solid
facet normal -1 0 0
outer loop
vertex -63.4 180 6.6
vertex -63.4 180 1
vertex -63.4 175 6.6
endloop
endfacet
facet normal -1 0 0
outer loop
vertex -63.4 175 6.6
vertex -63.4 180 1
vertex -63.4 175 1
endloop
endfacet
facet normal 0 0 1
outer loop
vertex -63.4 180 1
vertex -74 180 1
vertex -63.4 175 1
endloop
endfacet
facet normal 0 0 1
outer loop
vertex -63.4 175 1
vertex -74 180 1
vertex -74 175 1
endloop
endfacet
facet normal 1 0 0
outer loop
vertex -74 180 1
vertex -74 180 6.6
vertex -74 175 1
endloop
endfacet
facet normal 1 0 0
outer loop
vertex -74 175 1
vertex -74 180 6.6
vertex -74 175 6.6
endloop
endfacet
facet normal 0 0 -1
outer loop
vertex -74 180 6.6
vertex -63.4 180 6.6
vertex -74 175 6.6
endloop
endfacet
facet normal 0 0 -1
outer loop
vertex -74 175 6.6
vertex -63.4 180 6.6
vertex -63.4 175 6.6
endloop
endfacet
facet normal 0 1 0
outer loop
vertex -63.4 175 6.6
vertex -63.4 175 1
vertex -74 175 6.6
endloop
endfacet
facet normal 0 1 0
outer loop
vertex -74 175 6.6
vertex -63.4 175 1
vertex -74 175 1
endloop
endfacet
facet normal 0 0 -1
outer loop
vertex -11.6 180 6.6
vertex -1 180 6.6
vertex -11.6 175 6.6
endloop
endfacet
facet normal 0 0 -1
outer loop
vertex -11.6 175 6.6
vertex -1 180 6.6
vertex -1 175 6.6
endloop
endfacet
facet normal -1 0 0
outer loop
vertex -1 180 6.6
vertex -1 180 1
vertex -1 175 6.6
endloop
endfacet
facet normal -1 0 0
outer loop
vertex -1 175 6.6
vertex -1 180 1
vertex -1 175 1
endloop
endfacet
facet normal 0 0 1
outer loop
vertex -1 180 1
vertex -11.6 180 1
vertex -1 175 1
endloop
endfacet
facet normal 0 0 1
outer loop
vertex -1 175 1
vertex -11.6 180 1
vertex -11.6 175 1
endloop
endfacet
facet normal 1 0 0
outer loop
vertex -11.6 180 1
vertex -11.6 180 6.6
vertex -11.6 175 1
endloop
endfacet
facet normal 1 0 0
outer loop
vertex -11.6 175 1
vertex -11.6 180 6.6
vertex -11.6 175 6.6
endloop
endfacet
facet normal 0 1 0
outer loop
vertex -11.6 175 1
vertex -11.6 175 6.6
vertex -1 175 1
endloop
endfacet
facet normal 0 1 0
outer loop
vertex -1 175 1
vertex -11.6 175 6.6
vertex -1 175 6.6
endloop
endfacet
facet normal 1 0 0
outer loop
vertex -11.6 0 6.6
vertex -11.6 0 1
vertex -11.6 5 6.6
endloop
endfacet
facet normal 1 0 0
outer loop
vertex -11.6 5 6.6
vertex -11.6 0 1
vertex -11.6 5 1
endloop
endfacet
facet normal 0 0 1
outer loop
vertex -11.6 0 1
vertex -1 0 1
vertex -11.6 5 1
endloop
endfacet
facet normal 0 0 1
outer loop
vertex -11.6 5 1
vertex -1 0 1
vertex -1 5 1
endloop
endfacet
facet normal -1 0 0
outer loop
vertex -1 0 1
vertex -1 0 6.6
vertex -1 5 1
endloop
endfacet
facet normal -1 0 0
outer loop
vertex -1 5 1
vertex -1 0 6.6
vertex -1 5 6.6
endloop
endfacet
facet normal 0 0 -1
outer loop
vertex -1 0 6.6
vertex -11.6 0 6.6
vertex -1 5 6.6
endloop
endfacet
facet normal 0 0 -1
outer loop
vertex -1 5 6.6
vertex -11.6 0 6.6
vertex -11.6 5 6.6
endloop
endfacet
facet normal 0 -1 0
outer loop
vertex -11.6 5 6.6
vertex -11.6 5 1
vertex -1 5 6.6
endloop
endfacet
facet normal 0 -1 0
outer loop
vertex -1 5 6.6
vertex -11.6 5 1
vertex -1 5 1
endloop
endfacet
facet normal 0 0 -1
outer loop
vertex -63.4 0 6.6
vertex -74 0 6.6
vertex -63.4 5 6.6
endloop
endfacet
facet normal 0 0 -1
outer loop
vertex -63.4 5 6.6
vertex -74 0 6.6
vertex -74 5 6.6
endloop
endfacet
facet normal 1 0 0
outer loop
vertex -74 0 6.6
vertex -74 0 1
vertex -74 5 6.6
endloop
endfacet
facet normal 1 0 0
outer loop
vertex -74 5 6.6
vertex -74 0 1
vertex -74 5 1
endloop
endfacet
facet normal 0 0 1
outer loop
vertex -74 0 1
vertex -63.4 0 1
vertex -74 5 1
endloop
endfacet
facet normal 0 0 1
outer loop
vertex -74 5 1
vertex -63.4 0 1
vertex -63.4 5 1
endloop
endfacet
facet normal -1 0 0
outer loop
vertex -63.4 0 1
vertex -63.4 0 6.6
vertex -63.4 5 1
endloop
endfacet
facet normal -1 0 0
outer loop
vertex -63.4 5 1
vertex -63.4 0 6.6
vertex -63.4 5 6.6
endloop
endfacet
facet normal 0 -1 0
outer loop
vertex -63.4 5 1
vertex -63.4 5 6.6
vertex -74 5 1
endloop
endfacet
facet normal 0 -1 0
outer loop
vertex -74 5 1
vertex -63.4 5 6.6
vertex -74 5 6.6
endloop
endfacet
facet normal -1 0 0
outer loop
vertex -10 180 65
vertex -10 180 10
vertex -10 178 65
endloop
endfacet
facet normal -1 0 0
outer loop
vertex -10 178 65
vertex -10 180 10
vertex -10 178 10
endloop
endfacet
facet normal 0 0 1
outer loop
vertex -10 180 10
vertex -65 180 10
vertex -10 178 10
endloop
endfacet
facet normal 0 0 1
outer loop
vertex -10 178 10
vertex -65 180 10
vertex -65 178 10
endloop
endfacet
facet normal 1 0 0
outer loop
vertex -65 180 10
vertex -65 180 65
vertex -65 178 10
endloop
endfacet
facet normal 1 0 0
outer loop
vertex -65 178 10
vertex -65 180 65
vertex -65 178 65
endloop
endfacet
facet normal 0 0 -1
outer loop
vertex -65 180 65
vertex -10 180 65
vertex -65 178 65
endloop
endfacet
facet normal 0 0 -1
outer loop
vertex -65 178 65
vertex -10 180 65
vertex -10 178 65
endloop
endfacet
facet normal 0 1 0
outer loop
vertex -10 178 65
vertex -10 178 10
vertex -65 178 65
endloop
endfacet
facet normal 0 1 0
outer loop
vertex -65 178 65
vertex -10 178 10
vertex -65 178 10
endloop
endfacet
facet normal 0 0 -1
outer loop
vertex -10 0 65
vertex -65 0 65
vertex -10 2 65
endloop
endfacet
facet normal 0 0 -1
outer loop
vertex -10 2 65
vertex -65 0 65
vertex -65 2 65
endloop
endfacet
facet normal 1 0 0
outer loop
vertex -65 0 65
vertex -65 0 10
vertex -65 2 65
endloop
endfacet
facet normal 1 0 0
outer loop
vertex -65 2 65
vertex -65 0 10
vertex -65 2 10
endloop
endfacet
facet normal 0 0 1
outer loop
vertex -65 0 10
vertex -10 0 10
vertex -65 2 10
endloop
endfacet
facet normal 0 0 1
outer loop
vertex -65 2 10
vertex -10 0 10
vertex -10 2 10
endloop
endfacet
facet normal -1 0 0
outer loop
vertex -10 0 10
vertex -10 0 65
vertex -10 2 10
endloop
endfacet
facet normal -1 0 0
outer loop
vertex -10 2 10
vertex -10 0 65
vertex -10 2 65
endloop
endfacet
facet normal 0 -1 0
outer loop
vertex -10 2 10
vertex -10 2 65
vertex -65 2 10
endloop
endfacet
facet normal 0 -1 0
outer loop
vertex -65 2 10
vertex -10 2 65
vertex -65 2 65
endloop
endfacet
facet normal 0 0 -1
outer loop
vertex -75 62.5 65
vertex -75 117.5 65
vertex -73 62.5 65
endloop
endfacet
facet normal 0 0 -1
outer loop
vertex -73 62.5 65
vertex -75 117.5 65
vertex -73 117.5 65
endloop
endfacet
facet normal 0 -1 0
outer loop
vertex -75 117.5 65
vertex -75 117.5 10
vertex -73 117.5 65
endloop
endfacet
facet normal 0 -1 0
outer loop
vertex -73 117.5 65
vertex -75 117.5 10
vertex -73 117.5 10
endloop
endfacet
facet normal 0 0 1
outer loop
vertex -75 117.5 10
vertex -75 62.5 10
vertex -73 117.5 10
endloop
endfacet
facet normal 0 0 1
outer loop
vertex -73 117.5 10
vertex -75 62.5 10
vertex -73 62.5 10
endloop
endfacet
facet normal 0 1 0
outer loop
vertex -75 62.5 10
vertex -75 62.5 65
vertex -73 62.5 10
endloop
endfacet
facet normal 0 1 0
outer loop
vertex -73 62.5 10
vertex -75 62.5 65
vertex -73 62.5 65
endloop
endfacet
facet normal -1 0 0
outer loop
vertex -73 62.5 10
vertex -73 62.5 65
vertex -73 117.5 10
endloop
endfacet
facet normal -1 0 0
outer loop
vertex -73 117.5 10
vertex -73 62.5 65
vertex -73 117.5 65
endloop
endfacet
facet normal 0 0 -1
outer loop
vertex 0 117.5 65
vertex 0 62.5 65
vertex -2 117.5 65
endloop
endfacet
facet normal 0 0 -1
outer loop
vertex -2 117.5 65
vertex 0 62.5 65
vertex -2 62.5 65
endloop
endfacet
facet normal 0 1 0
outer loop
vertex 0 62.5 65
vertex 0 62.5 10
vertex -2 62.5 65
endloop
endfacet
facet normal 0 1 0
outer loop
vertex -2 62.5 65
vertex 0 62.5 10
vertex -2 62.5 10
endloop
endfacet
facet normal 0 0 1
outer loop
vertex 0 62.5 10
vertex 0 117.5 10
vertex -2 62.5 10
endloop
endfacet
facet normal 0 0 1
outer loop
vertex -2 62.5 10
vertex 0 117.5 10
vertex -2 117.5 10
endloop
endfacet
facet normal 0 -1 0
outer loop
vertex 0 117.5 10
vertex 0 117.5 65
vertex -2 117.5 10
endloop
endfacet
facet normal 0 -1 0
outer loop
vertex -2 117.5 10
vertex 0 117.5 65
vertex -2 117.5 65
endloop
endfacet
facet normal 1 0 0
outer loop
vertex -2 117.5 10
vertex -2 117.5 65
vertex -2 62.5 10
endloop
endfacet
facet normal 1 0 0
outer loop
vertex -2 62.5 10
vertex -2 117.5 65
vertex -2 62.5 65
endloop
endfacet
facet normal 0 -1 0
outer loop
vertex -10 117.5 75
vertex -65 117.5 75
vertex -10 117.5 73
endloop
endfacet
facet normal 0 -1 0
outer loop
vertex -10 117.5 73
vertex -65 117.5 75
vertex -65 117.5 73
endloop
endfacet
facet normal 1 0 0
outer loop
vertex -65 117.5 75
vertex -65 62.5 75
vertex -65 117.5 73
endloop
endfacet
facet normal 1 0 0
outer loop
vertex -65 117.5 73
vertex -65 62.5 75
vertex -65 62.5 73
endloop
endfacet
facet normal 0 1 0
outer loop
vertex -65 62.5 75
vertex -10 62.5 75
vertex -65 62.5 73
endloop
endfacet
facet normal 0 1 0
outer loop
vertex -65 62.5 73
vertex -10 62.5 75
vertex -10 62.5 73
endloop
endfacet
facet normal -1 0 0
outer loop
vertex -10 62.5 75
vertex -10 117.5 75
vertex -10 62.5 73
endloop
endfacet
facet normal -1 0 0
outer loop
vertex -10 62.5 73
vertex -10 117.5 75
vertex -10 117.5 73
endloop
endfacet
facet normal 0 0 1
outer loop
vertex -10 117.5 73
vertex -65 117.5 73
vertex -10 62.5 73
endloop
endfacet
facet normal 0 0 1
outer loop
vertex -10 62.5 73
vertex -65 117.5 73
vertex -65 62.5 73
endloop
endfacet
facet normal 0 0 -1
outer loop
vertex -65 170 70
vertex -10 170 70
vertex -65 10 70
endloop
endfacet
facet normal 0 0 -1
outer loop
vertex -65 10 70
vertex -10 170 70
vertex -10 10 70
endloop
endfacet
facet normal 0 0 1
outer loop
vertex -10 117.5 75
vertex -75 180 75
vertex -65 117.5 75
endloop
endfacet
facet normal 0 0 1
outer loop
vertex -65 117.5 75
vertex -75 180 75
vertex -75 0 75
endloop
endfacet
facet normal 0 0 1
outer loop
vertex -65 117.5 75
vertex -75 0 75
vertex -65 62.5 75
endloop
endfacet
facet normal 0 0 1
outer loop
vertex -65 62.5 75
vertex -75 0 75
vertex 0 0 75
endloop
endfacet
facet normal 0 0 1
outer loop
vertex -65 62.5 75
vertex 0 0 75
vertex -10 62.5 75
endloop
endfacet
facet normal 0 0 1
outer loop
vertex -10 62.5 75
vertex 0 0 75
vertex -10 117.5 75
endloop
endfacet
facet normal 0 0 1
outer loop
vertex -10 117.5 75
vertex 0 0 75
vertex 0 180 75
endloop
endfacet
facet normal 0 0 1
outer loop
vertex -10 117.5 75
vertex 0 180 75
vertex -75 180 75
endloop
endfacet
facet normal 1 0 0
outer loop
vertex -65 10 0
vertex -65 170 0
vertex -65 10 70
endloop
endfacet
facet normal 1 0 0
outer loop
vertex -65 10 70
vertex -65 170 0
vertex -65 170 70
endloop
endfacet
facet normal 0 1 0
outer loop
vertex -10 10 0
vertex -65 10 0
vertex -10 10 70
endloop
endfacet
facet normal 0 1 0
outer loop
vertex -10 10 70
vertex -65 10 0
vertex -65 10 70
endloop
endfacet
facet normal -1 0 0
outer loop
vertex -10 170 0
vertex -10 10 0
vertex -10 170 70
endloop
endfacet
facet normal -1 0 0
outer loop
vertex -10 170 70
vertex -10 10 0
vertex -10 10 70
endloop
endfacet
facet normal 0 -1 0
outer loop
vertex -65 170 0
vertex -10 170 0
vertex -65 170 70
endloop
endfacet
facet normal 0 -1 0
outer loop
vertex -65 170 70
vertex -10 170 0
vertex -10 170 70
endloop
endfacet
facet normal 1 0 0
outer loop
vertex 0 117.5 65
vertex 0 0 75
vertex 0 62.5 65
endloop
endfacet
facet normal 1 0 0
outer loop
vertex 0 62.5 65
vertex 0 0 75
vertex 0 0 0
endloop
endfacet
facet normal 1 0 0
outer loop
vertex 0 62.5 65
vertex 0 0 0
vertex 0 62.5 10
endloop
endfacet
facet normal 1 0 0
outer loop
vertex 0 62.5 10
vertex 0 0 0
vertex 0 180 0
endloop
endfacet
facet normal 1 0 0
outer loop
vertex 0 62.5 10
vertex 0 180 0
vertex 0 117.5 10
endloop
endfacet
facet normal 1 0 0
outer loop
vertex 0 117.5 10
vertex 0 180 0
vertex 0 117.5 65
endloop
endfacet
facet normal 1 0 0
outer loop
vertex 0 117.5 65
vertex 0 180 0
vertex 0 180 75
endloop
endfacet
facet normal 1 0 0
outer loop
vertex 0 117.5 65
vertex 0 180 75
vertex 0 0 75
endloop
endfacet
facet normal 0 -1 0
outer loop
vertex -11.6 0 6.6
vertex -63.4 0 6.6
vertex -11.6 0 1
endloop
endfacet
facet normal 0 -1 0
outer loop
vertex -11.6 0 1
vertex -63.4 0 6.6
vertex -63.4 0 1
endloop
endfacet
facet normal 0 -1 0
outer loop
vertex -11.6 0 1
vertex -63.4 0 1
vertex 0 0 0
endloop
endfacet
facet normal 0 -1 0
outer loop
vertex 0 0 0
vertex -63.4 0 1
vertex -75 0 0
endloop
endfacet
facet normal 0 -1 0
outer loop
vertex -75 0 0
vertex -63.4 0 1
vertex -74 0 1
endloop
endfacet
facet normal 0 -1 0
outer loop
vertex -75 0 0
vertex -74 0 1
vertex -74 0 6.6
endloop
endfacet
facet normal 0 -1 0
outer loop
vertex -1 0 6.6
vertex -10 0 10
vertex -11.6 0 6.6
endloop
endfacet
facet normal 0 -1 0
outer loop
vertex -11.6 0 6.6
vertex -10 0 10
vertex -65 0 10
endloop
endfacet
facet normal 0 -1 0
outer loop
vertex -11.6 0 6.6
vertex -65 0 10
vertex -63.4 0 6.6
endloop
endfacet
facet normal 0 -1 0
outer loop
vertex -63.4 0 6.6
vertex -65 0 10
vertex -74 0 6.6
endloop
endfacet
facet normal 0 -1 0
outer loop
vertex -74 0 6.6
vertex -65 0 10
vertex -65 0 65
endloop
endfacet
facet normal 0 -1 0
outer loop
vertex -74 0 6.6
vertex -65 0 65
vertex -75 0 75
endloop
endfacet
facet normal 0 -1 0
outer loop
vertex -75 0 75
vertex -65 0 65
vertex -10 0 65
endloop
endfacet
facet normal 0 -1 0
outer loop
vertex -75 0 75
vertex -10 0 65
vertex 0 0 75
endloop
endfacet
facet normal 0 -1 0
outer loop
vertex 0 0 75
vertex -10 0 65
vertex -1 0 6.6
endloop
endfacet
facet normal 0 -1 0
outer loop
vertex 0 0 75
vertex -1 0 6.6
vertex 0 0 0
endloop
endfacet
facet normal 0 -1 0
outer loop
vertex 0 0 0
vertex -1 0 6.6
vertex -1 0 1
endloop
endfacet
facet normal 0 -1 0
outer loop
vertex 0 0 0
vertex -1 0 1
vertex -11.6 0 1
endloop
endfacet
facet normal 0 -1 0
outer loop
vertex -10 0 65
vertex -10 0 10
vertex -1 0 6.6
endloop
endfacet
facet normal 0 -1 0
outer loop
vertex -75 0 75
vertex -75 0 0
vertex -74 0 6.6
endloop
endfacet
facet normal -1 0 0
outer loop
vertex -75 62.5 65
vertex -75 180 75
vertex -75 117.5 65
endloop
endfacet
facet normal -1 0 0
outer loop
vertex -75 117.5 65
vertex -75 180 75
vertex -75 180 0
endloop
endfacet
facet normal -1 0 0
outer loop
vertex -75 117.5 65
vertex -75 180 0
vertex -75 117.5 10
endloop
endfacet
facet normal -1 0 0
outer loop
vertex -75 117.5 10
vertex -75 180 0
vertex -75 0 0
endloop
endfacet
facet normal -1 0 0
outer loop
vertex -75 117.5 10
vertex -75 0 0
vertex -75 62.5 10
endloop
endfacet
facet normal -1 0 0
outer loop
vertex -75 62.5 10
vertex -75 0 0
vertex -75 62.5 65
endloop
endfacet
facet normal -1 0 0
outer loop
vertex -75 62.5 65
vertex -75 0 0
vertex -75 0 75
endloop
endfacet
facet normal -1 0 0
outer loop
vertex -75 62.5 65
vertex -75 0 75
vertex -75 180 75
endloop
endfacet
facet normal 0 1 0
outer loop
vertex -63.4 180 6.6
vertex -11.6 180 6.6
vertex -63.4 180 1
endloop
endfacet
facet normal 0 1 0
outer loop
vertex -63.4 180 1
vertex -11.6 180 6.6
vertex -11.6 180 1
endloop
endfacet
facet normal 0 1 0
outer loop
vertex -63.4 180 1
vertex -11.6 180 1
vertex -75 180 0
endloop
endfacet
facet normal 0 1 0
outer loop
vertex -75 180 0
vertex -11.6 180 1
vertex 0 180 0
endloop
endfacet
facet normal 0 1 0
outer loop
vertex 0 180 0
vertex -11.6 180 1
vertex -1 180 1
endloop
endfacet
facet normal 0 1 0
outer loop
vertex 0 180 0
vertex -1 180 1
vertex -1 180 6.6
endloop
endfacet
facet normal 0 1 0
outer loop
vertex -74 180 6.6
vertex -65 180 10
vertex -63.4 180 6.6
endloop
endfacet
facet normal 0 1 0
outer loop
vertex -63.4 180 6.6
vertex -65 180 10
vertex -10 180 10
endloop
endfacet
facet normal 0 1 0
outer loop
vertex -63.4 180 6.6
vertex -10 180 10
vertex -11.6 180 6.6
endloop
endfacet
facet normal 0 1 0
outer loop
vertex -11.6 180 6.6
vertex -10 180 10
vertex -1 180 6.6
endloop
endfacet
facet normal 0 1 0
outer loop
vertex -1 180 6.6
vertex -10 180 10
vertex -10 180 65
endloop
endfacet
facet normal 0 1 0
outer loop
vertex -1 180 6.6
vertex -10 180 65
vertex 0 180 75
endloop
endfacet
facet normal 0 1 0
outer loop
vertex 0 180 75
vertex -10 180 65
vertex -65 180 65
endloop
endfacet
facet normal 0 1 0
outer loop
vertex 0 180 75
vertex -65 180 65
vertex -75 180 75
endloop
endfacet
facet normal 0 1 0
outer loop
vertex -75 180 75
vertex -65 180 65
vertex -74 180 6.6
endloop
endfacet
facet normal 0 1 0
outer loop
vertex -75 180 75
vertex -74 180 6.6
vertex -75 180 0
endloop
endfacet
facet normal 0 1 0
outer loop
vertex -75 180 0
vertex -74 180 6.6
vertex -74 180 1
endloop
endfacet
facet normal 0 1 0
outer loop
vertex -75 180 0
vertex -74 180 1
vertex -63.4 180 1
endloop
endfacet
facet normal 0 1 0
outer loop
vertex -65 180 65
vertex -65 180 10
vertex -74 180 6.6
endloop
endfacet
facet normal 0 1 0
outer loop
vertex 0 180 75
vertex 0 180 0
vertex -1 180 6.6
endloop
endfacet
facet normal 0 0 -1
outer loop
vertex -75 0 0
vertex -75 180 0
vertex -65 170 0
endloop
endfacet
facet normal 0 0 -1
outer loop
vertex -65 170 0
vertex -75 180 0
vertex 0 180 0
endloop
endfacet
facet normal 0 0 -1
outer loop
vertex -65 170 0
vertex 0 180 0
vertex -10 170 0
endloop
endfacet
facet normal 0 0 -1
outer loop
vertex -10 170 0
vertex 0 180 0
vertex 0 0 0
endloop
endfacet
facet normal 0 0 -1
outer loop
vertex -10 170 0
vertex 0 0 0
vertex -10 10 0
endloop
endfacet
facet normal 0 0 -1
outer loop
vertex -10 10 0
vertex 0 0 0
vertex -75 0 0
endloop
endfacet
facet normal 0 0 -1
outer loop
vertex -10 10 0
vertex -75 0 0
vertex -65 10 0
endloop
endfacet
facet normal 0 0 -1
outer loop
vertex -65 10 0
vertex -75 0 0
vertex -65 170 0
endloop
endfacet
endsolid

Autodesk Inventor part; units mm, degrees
ref_plane "YZ Plane" through (0, 0, 0) normal (1, 0, 0) x (0, 1, 0)
ref_plane "XZ Plane" through (0, 0, 0) normal (0, 1, 0) x (-1, 0, 0)
ref_plane "XY Plane" through (0, 0, 0) normal (0, 0, 1) x (1, 0, 0)
sketch "Sketch1" plane through (0, 0, 0) normal (0, 0, 1) x (1, 0, 0)
  line L0 (0, 0) -> (-75, 0)
  line L1 (-75, 0) -> (-75, 180)
  line L2 (-75, 180) -> (0, 180)
  line L3 (0, 180) -> (0, 0)
  line L4 (-65, 170) -> (-10, 170)
  line L5 (-10, 10) -> (-65, 10)
  line L6 (-65, 10) -> (-65, 85)
  line L7 (-65, 95) -> (-65, 170)
  line L8 (-10, 170) -> (-10, 95)
  line L9 (-10, 85) -> (-10, 10)
  line L10 (-65, 85) -> (-65, 95)
  line L11 (-10, 95) -> (-10, 85)
  point P0 (-65, 90)
  point P1 (-10, 90)
  dimension "d35" = 75
  dimension "d36" = 180
  dimension "d37" = 55
  dimension "d38" = 160
extrude "Extrusion7" add sketch "Sketch1" along normal blind 70
sketch "Sketch4" plane through (0, 0, 70) normal (0, 0, 1) x (1, 0, 0)
  line L0 (-75, 0) -> (0, 0) projected
  line L1 (0, 180) -> (-75, 180) projected
  line L2 (0, 0) -> (-75, 0)
  line L3 (-75, 0) -> (-75, 180)
  line L4 (-75, 180) -> (0, 180)
  line L5 (0, 180) -> (0, 0)
extrude "Extrusion8" add sketch "Sketch4" along normal blind 5
sketch "Sketch5" plane through (0, 0, 75) normal (0, 0, 1) x (1, 0, 0)
  line L0 (-65, 85) -> (-65, 95)
  line L1 (-10, 95) -> (-10, 85)
  line L2 (-10, 62.5) -> (-10, 90)
  line L3 (-10, 62.5) -> (-65, 62.5)
  line L4 (-65, 62.5) -> (-65, 117.5)
  line L5 (-65, 117.5) -> (-10, 117.5)
  line L6 (-10, 117.5) -> (-10, 62.5)
  point P0 (-65, 90)
  dimension "d59" = 55
  dimension "d60" = 55
extrude "Extrusion9" cut sketch "Sketch5" against normal blind 2
sketch "Sketch6" plane through (0, 0, 0) normal (1, 0, 0) x (0, 0, -1)
  line L0 (-10, 62.5) -> (-65, 62.5)
  line L1 (-65, 62.5) -> (-65, 117.5)
  line L2 (-65, 117.5) -> (-10, 117.5)
  line L3 (-10, 117.5) -> (-10, 62.5)
  dimension "d67" = 55
  dimension "d68" = 55
extrude "Extrusion10" cut sketch "Sketch6" against normal blind 2
sketch "Sketch7" plane through (-75, 0, 0) normal (-1, 0, 0) x (0, 0, 1)
  line L0 (10, 62.5) -> (65, 62.5) projected
  line L1 (10, 62.5) -> (65, 62.5)
  line L2 (65, 62.5) -> (65, 117.5)
  line L3 (65, 117.5) -> (10, 117.5)
  line L4 (10, 117.5) -> (10, 62.5)
  point P0 (0, 0)
  dimension "d71" = 55
  dimension "d72" = 55
extrude "Extrusion11" cut sketch "Sketch7" against normal blind 2
sketch "Sketch8" plane through (-75, 0, 0) normal (0, -1, 0) x (1, 0, 0)
  line L0 (10, 10) -> (65, 10)
  line L1 (65, 10) -> (65, 65)
  line L2 (65, 65) -> (10, 65)
  line L3 (10, 65) -> (10, 10)
  point P0 (75, 0)
  dimension "d75" = 55
  dimension "d76" = 55
extrude "Extrusion12" cut sketch "Sketch8" against normal blind 2
sketch "Sketch9" plane through (-75, 180, 0) normal (0, 1, 0) x (1, 0, 0)
  line L0 (10, -10) -> (65, -10)
  line L1 (65, -10) -> (65, -65)
  line L2 (65, -65) -> (10, -65)
  line L3 (10, -65) -> (10, -10)
  point P0 (75, 0)
  dimension "d79" = 55
  dimension "d80" = 55
extrude "Extrusion13" cut sketch "Sketch9" against normal blind 2
sketch "Sketch10" plane through (-75, 0, 0) normal (0, -1, 0) x (1, 0, 0)
  line L0 (74, 1) -> (63.4, 1)
  line L1 (63.4, 1) -> (63.4, 6.6)
  line L2 (63.4, 6.6) -> (74, 6.6)
  line L3 (74, 6.6) -> (74, 1)
  line L4 (1, 1) -> (11.6, 1)
  line L5 (11.6, 1) -> (11.6, 6.6)
  line L6 (11.6, 6.6) -> (1, 6.6)
  line L7 (1, 6.6) -> (1, 1)
  point P0 (75, 0)
  dimension "d83" = 10.6
  dimension "d84" = 5.6
  dimension "d85" = 10.6
  dimension "d86" = 5.6
extrude "Extrusion14" cut sketch "Sketch10" against normal blind 5
sketch "Sketch11" plane through (-75, 180, 0) normal (0, 1, 0) x (1, 0, 0)
  line L0 (1, -1) -> (11.6, -1)
  line L1 (11.6, -1) -> (11.6, -6.6)
  line L2 (11.6, -6.6) -> (1, -6.6)
  line L3 (1, -6.6) -> (1, -1)
  line L4 (74, -1) -> (63.4, -1)
  line L5 (63.4, -1) -> (63.4, -6.6)
  line L6 (63.4, -6.6) -> (74, -6.6)
  line L7 (74, -6.6) -> (74, -1)
  point P0 (75, 0)
  dimension "d89" = 10.6
  dimension "d90" = 5.6
  dimension "d91" = 10.6
  dimension "d92" = 5.6
extrude "Extrusion15" cut sketch "Sketch11" against normal blind 5
properties part number "Shoulder_Cube_TestFit_V1"
